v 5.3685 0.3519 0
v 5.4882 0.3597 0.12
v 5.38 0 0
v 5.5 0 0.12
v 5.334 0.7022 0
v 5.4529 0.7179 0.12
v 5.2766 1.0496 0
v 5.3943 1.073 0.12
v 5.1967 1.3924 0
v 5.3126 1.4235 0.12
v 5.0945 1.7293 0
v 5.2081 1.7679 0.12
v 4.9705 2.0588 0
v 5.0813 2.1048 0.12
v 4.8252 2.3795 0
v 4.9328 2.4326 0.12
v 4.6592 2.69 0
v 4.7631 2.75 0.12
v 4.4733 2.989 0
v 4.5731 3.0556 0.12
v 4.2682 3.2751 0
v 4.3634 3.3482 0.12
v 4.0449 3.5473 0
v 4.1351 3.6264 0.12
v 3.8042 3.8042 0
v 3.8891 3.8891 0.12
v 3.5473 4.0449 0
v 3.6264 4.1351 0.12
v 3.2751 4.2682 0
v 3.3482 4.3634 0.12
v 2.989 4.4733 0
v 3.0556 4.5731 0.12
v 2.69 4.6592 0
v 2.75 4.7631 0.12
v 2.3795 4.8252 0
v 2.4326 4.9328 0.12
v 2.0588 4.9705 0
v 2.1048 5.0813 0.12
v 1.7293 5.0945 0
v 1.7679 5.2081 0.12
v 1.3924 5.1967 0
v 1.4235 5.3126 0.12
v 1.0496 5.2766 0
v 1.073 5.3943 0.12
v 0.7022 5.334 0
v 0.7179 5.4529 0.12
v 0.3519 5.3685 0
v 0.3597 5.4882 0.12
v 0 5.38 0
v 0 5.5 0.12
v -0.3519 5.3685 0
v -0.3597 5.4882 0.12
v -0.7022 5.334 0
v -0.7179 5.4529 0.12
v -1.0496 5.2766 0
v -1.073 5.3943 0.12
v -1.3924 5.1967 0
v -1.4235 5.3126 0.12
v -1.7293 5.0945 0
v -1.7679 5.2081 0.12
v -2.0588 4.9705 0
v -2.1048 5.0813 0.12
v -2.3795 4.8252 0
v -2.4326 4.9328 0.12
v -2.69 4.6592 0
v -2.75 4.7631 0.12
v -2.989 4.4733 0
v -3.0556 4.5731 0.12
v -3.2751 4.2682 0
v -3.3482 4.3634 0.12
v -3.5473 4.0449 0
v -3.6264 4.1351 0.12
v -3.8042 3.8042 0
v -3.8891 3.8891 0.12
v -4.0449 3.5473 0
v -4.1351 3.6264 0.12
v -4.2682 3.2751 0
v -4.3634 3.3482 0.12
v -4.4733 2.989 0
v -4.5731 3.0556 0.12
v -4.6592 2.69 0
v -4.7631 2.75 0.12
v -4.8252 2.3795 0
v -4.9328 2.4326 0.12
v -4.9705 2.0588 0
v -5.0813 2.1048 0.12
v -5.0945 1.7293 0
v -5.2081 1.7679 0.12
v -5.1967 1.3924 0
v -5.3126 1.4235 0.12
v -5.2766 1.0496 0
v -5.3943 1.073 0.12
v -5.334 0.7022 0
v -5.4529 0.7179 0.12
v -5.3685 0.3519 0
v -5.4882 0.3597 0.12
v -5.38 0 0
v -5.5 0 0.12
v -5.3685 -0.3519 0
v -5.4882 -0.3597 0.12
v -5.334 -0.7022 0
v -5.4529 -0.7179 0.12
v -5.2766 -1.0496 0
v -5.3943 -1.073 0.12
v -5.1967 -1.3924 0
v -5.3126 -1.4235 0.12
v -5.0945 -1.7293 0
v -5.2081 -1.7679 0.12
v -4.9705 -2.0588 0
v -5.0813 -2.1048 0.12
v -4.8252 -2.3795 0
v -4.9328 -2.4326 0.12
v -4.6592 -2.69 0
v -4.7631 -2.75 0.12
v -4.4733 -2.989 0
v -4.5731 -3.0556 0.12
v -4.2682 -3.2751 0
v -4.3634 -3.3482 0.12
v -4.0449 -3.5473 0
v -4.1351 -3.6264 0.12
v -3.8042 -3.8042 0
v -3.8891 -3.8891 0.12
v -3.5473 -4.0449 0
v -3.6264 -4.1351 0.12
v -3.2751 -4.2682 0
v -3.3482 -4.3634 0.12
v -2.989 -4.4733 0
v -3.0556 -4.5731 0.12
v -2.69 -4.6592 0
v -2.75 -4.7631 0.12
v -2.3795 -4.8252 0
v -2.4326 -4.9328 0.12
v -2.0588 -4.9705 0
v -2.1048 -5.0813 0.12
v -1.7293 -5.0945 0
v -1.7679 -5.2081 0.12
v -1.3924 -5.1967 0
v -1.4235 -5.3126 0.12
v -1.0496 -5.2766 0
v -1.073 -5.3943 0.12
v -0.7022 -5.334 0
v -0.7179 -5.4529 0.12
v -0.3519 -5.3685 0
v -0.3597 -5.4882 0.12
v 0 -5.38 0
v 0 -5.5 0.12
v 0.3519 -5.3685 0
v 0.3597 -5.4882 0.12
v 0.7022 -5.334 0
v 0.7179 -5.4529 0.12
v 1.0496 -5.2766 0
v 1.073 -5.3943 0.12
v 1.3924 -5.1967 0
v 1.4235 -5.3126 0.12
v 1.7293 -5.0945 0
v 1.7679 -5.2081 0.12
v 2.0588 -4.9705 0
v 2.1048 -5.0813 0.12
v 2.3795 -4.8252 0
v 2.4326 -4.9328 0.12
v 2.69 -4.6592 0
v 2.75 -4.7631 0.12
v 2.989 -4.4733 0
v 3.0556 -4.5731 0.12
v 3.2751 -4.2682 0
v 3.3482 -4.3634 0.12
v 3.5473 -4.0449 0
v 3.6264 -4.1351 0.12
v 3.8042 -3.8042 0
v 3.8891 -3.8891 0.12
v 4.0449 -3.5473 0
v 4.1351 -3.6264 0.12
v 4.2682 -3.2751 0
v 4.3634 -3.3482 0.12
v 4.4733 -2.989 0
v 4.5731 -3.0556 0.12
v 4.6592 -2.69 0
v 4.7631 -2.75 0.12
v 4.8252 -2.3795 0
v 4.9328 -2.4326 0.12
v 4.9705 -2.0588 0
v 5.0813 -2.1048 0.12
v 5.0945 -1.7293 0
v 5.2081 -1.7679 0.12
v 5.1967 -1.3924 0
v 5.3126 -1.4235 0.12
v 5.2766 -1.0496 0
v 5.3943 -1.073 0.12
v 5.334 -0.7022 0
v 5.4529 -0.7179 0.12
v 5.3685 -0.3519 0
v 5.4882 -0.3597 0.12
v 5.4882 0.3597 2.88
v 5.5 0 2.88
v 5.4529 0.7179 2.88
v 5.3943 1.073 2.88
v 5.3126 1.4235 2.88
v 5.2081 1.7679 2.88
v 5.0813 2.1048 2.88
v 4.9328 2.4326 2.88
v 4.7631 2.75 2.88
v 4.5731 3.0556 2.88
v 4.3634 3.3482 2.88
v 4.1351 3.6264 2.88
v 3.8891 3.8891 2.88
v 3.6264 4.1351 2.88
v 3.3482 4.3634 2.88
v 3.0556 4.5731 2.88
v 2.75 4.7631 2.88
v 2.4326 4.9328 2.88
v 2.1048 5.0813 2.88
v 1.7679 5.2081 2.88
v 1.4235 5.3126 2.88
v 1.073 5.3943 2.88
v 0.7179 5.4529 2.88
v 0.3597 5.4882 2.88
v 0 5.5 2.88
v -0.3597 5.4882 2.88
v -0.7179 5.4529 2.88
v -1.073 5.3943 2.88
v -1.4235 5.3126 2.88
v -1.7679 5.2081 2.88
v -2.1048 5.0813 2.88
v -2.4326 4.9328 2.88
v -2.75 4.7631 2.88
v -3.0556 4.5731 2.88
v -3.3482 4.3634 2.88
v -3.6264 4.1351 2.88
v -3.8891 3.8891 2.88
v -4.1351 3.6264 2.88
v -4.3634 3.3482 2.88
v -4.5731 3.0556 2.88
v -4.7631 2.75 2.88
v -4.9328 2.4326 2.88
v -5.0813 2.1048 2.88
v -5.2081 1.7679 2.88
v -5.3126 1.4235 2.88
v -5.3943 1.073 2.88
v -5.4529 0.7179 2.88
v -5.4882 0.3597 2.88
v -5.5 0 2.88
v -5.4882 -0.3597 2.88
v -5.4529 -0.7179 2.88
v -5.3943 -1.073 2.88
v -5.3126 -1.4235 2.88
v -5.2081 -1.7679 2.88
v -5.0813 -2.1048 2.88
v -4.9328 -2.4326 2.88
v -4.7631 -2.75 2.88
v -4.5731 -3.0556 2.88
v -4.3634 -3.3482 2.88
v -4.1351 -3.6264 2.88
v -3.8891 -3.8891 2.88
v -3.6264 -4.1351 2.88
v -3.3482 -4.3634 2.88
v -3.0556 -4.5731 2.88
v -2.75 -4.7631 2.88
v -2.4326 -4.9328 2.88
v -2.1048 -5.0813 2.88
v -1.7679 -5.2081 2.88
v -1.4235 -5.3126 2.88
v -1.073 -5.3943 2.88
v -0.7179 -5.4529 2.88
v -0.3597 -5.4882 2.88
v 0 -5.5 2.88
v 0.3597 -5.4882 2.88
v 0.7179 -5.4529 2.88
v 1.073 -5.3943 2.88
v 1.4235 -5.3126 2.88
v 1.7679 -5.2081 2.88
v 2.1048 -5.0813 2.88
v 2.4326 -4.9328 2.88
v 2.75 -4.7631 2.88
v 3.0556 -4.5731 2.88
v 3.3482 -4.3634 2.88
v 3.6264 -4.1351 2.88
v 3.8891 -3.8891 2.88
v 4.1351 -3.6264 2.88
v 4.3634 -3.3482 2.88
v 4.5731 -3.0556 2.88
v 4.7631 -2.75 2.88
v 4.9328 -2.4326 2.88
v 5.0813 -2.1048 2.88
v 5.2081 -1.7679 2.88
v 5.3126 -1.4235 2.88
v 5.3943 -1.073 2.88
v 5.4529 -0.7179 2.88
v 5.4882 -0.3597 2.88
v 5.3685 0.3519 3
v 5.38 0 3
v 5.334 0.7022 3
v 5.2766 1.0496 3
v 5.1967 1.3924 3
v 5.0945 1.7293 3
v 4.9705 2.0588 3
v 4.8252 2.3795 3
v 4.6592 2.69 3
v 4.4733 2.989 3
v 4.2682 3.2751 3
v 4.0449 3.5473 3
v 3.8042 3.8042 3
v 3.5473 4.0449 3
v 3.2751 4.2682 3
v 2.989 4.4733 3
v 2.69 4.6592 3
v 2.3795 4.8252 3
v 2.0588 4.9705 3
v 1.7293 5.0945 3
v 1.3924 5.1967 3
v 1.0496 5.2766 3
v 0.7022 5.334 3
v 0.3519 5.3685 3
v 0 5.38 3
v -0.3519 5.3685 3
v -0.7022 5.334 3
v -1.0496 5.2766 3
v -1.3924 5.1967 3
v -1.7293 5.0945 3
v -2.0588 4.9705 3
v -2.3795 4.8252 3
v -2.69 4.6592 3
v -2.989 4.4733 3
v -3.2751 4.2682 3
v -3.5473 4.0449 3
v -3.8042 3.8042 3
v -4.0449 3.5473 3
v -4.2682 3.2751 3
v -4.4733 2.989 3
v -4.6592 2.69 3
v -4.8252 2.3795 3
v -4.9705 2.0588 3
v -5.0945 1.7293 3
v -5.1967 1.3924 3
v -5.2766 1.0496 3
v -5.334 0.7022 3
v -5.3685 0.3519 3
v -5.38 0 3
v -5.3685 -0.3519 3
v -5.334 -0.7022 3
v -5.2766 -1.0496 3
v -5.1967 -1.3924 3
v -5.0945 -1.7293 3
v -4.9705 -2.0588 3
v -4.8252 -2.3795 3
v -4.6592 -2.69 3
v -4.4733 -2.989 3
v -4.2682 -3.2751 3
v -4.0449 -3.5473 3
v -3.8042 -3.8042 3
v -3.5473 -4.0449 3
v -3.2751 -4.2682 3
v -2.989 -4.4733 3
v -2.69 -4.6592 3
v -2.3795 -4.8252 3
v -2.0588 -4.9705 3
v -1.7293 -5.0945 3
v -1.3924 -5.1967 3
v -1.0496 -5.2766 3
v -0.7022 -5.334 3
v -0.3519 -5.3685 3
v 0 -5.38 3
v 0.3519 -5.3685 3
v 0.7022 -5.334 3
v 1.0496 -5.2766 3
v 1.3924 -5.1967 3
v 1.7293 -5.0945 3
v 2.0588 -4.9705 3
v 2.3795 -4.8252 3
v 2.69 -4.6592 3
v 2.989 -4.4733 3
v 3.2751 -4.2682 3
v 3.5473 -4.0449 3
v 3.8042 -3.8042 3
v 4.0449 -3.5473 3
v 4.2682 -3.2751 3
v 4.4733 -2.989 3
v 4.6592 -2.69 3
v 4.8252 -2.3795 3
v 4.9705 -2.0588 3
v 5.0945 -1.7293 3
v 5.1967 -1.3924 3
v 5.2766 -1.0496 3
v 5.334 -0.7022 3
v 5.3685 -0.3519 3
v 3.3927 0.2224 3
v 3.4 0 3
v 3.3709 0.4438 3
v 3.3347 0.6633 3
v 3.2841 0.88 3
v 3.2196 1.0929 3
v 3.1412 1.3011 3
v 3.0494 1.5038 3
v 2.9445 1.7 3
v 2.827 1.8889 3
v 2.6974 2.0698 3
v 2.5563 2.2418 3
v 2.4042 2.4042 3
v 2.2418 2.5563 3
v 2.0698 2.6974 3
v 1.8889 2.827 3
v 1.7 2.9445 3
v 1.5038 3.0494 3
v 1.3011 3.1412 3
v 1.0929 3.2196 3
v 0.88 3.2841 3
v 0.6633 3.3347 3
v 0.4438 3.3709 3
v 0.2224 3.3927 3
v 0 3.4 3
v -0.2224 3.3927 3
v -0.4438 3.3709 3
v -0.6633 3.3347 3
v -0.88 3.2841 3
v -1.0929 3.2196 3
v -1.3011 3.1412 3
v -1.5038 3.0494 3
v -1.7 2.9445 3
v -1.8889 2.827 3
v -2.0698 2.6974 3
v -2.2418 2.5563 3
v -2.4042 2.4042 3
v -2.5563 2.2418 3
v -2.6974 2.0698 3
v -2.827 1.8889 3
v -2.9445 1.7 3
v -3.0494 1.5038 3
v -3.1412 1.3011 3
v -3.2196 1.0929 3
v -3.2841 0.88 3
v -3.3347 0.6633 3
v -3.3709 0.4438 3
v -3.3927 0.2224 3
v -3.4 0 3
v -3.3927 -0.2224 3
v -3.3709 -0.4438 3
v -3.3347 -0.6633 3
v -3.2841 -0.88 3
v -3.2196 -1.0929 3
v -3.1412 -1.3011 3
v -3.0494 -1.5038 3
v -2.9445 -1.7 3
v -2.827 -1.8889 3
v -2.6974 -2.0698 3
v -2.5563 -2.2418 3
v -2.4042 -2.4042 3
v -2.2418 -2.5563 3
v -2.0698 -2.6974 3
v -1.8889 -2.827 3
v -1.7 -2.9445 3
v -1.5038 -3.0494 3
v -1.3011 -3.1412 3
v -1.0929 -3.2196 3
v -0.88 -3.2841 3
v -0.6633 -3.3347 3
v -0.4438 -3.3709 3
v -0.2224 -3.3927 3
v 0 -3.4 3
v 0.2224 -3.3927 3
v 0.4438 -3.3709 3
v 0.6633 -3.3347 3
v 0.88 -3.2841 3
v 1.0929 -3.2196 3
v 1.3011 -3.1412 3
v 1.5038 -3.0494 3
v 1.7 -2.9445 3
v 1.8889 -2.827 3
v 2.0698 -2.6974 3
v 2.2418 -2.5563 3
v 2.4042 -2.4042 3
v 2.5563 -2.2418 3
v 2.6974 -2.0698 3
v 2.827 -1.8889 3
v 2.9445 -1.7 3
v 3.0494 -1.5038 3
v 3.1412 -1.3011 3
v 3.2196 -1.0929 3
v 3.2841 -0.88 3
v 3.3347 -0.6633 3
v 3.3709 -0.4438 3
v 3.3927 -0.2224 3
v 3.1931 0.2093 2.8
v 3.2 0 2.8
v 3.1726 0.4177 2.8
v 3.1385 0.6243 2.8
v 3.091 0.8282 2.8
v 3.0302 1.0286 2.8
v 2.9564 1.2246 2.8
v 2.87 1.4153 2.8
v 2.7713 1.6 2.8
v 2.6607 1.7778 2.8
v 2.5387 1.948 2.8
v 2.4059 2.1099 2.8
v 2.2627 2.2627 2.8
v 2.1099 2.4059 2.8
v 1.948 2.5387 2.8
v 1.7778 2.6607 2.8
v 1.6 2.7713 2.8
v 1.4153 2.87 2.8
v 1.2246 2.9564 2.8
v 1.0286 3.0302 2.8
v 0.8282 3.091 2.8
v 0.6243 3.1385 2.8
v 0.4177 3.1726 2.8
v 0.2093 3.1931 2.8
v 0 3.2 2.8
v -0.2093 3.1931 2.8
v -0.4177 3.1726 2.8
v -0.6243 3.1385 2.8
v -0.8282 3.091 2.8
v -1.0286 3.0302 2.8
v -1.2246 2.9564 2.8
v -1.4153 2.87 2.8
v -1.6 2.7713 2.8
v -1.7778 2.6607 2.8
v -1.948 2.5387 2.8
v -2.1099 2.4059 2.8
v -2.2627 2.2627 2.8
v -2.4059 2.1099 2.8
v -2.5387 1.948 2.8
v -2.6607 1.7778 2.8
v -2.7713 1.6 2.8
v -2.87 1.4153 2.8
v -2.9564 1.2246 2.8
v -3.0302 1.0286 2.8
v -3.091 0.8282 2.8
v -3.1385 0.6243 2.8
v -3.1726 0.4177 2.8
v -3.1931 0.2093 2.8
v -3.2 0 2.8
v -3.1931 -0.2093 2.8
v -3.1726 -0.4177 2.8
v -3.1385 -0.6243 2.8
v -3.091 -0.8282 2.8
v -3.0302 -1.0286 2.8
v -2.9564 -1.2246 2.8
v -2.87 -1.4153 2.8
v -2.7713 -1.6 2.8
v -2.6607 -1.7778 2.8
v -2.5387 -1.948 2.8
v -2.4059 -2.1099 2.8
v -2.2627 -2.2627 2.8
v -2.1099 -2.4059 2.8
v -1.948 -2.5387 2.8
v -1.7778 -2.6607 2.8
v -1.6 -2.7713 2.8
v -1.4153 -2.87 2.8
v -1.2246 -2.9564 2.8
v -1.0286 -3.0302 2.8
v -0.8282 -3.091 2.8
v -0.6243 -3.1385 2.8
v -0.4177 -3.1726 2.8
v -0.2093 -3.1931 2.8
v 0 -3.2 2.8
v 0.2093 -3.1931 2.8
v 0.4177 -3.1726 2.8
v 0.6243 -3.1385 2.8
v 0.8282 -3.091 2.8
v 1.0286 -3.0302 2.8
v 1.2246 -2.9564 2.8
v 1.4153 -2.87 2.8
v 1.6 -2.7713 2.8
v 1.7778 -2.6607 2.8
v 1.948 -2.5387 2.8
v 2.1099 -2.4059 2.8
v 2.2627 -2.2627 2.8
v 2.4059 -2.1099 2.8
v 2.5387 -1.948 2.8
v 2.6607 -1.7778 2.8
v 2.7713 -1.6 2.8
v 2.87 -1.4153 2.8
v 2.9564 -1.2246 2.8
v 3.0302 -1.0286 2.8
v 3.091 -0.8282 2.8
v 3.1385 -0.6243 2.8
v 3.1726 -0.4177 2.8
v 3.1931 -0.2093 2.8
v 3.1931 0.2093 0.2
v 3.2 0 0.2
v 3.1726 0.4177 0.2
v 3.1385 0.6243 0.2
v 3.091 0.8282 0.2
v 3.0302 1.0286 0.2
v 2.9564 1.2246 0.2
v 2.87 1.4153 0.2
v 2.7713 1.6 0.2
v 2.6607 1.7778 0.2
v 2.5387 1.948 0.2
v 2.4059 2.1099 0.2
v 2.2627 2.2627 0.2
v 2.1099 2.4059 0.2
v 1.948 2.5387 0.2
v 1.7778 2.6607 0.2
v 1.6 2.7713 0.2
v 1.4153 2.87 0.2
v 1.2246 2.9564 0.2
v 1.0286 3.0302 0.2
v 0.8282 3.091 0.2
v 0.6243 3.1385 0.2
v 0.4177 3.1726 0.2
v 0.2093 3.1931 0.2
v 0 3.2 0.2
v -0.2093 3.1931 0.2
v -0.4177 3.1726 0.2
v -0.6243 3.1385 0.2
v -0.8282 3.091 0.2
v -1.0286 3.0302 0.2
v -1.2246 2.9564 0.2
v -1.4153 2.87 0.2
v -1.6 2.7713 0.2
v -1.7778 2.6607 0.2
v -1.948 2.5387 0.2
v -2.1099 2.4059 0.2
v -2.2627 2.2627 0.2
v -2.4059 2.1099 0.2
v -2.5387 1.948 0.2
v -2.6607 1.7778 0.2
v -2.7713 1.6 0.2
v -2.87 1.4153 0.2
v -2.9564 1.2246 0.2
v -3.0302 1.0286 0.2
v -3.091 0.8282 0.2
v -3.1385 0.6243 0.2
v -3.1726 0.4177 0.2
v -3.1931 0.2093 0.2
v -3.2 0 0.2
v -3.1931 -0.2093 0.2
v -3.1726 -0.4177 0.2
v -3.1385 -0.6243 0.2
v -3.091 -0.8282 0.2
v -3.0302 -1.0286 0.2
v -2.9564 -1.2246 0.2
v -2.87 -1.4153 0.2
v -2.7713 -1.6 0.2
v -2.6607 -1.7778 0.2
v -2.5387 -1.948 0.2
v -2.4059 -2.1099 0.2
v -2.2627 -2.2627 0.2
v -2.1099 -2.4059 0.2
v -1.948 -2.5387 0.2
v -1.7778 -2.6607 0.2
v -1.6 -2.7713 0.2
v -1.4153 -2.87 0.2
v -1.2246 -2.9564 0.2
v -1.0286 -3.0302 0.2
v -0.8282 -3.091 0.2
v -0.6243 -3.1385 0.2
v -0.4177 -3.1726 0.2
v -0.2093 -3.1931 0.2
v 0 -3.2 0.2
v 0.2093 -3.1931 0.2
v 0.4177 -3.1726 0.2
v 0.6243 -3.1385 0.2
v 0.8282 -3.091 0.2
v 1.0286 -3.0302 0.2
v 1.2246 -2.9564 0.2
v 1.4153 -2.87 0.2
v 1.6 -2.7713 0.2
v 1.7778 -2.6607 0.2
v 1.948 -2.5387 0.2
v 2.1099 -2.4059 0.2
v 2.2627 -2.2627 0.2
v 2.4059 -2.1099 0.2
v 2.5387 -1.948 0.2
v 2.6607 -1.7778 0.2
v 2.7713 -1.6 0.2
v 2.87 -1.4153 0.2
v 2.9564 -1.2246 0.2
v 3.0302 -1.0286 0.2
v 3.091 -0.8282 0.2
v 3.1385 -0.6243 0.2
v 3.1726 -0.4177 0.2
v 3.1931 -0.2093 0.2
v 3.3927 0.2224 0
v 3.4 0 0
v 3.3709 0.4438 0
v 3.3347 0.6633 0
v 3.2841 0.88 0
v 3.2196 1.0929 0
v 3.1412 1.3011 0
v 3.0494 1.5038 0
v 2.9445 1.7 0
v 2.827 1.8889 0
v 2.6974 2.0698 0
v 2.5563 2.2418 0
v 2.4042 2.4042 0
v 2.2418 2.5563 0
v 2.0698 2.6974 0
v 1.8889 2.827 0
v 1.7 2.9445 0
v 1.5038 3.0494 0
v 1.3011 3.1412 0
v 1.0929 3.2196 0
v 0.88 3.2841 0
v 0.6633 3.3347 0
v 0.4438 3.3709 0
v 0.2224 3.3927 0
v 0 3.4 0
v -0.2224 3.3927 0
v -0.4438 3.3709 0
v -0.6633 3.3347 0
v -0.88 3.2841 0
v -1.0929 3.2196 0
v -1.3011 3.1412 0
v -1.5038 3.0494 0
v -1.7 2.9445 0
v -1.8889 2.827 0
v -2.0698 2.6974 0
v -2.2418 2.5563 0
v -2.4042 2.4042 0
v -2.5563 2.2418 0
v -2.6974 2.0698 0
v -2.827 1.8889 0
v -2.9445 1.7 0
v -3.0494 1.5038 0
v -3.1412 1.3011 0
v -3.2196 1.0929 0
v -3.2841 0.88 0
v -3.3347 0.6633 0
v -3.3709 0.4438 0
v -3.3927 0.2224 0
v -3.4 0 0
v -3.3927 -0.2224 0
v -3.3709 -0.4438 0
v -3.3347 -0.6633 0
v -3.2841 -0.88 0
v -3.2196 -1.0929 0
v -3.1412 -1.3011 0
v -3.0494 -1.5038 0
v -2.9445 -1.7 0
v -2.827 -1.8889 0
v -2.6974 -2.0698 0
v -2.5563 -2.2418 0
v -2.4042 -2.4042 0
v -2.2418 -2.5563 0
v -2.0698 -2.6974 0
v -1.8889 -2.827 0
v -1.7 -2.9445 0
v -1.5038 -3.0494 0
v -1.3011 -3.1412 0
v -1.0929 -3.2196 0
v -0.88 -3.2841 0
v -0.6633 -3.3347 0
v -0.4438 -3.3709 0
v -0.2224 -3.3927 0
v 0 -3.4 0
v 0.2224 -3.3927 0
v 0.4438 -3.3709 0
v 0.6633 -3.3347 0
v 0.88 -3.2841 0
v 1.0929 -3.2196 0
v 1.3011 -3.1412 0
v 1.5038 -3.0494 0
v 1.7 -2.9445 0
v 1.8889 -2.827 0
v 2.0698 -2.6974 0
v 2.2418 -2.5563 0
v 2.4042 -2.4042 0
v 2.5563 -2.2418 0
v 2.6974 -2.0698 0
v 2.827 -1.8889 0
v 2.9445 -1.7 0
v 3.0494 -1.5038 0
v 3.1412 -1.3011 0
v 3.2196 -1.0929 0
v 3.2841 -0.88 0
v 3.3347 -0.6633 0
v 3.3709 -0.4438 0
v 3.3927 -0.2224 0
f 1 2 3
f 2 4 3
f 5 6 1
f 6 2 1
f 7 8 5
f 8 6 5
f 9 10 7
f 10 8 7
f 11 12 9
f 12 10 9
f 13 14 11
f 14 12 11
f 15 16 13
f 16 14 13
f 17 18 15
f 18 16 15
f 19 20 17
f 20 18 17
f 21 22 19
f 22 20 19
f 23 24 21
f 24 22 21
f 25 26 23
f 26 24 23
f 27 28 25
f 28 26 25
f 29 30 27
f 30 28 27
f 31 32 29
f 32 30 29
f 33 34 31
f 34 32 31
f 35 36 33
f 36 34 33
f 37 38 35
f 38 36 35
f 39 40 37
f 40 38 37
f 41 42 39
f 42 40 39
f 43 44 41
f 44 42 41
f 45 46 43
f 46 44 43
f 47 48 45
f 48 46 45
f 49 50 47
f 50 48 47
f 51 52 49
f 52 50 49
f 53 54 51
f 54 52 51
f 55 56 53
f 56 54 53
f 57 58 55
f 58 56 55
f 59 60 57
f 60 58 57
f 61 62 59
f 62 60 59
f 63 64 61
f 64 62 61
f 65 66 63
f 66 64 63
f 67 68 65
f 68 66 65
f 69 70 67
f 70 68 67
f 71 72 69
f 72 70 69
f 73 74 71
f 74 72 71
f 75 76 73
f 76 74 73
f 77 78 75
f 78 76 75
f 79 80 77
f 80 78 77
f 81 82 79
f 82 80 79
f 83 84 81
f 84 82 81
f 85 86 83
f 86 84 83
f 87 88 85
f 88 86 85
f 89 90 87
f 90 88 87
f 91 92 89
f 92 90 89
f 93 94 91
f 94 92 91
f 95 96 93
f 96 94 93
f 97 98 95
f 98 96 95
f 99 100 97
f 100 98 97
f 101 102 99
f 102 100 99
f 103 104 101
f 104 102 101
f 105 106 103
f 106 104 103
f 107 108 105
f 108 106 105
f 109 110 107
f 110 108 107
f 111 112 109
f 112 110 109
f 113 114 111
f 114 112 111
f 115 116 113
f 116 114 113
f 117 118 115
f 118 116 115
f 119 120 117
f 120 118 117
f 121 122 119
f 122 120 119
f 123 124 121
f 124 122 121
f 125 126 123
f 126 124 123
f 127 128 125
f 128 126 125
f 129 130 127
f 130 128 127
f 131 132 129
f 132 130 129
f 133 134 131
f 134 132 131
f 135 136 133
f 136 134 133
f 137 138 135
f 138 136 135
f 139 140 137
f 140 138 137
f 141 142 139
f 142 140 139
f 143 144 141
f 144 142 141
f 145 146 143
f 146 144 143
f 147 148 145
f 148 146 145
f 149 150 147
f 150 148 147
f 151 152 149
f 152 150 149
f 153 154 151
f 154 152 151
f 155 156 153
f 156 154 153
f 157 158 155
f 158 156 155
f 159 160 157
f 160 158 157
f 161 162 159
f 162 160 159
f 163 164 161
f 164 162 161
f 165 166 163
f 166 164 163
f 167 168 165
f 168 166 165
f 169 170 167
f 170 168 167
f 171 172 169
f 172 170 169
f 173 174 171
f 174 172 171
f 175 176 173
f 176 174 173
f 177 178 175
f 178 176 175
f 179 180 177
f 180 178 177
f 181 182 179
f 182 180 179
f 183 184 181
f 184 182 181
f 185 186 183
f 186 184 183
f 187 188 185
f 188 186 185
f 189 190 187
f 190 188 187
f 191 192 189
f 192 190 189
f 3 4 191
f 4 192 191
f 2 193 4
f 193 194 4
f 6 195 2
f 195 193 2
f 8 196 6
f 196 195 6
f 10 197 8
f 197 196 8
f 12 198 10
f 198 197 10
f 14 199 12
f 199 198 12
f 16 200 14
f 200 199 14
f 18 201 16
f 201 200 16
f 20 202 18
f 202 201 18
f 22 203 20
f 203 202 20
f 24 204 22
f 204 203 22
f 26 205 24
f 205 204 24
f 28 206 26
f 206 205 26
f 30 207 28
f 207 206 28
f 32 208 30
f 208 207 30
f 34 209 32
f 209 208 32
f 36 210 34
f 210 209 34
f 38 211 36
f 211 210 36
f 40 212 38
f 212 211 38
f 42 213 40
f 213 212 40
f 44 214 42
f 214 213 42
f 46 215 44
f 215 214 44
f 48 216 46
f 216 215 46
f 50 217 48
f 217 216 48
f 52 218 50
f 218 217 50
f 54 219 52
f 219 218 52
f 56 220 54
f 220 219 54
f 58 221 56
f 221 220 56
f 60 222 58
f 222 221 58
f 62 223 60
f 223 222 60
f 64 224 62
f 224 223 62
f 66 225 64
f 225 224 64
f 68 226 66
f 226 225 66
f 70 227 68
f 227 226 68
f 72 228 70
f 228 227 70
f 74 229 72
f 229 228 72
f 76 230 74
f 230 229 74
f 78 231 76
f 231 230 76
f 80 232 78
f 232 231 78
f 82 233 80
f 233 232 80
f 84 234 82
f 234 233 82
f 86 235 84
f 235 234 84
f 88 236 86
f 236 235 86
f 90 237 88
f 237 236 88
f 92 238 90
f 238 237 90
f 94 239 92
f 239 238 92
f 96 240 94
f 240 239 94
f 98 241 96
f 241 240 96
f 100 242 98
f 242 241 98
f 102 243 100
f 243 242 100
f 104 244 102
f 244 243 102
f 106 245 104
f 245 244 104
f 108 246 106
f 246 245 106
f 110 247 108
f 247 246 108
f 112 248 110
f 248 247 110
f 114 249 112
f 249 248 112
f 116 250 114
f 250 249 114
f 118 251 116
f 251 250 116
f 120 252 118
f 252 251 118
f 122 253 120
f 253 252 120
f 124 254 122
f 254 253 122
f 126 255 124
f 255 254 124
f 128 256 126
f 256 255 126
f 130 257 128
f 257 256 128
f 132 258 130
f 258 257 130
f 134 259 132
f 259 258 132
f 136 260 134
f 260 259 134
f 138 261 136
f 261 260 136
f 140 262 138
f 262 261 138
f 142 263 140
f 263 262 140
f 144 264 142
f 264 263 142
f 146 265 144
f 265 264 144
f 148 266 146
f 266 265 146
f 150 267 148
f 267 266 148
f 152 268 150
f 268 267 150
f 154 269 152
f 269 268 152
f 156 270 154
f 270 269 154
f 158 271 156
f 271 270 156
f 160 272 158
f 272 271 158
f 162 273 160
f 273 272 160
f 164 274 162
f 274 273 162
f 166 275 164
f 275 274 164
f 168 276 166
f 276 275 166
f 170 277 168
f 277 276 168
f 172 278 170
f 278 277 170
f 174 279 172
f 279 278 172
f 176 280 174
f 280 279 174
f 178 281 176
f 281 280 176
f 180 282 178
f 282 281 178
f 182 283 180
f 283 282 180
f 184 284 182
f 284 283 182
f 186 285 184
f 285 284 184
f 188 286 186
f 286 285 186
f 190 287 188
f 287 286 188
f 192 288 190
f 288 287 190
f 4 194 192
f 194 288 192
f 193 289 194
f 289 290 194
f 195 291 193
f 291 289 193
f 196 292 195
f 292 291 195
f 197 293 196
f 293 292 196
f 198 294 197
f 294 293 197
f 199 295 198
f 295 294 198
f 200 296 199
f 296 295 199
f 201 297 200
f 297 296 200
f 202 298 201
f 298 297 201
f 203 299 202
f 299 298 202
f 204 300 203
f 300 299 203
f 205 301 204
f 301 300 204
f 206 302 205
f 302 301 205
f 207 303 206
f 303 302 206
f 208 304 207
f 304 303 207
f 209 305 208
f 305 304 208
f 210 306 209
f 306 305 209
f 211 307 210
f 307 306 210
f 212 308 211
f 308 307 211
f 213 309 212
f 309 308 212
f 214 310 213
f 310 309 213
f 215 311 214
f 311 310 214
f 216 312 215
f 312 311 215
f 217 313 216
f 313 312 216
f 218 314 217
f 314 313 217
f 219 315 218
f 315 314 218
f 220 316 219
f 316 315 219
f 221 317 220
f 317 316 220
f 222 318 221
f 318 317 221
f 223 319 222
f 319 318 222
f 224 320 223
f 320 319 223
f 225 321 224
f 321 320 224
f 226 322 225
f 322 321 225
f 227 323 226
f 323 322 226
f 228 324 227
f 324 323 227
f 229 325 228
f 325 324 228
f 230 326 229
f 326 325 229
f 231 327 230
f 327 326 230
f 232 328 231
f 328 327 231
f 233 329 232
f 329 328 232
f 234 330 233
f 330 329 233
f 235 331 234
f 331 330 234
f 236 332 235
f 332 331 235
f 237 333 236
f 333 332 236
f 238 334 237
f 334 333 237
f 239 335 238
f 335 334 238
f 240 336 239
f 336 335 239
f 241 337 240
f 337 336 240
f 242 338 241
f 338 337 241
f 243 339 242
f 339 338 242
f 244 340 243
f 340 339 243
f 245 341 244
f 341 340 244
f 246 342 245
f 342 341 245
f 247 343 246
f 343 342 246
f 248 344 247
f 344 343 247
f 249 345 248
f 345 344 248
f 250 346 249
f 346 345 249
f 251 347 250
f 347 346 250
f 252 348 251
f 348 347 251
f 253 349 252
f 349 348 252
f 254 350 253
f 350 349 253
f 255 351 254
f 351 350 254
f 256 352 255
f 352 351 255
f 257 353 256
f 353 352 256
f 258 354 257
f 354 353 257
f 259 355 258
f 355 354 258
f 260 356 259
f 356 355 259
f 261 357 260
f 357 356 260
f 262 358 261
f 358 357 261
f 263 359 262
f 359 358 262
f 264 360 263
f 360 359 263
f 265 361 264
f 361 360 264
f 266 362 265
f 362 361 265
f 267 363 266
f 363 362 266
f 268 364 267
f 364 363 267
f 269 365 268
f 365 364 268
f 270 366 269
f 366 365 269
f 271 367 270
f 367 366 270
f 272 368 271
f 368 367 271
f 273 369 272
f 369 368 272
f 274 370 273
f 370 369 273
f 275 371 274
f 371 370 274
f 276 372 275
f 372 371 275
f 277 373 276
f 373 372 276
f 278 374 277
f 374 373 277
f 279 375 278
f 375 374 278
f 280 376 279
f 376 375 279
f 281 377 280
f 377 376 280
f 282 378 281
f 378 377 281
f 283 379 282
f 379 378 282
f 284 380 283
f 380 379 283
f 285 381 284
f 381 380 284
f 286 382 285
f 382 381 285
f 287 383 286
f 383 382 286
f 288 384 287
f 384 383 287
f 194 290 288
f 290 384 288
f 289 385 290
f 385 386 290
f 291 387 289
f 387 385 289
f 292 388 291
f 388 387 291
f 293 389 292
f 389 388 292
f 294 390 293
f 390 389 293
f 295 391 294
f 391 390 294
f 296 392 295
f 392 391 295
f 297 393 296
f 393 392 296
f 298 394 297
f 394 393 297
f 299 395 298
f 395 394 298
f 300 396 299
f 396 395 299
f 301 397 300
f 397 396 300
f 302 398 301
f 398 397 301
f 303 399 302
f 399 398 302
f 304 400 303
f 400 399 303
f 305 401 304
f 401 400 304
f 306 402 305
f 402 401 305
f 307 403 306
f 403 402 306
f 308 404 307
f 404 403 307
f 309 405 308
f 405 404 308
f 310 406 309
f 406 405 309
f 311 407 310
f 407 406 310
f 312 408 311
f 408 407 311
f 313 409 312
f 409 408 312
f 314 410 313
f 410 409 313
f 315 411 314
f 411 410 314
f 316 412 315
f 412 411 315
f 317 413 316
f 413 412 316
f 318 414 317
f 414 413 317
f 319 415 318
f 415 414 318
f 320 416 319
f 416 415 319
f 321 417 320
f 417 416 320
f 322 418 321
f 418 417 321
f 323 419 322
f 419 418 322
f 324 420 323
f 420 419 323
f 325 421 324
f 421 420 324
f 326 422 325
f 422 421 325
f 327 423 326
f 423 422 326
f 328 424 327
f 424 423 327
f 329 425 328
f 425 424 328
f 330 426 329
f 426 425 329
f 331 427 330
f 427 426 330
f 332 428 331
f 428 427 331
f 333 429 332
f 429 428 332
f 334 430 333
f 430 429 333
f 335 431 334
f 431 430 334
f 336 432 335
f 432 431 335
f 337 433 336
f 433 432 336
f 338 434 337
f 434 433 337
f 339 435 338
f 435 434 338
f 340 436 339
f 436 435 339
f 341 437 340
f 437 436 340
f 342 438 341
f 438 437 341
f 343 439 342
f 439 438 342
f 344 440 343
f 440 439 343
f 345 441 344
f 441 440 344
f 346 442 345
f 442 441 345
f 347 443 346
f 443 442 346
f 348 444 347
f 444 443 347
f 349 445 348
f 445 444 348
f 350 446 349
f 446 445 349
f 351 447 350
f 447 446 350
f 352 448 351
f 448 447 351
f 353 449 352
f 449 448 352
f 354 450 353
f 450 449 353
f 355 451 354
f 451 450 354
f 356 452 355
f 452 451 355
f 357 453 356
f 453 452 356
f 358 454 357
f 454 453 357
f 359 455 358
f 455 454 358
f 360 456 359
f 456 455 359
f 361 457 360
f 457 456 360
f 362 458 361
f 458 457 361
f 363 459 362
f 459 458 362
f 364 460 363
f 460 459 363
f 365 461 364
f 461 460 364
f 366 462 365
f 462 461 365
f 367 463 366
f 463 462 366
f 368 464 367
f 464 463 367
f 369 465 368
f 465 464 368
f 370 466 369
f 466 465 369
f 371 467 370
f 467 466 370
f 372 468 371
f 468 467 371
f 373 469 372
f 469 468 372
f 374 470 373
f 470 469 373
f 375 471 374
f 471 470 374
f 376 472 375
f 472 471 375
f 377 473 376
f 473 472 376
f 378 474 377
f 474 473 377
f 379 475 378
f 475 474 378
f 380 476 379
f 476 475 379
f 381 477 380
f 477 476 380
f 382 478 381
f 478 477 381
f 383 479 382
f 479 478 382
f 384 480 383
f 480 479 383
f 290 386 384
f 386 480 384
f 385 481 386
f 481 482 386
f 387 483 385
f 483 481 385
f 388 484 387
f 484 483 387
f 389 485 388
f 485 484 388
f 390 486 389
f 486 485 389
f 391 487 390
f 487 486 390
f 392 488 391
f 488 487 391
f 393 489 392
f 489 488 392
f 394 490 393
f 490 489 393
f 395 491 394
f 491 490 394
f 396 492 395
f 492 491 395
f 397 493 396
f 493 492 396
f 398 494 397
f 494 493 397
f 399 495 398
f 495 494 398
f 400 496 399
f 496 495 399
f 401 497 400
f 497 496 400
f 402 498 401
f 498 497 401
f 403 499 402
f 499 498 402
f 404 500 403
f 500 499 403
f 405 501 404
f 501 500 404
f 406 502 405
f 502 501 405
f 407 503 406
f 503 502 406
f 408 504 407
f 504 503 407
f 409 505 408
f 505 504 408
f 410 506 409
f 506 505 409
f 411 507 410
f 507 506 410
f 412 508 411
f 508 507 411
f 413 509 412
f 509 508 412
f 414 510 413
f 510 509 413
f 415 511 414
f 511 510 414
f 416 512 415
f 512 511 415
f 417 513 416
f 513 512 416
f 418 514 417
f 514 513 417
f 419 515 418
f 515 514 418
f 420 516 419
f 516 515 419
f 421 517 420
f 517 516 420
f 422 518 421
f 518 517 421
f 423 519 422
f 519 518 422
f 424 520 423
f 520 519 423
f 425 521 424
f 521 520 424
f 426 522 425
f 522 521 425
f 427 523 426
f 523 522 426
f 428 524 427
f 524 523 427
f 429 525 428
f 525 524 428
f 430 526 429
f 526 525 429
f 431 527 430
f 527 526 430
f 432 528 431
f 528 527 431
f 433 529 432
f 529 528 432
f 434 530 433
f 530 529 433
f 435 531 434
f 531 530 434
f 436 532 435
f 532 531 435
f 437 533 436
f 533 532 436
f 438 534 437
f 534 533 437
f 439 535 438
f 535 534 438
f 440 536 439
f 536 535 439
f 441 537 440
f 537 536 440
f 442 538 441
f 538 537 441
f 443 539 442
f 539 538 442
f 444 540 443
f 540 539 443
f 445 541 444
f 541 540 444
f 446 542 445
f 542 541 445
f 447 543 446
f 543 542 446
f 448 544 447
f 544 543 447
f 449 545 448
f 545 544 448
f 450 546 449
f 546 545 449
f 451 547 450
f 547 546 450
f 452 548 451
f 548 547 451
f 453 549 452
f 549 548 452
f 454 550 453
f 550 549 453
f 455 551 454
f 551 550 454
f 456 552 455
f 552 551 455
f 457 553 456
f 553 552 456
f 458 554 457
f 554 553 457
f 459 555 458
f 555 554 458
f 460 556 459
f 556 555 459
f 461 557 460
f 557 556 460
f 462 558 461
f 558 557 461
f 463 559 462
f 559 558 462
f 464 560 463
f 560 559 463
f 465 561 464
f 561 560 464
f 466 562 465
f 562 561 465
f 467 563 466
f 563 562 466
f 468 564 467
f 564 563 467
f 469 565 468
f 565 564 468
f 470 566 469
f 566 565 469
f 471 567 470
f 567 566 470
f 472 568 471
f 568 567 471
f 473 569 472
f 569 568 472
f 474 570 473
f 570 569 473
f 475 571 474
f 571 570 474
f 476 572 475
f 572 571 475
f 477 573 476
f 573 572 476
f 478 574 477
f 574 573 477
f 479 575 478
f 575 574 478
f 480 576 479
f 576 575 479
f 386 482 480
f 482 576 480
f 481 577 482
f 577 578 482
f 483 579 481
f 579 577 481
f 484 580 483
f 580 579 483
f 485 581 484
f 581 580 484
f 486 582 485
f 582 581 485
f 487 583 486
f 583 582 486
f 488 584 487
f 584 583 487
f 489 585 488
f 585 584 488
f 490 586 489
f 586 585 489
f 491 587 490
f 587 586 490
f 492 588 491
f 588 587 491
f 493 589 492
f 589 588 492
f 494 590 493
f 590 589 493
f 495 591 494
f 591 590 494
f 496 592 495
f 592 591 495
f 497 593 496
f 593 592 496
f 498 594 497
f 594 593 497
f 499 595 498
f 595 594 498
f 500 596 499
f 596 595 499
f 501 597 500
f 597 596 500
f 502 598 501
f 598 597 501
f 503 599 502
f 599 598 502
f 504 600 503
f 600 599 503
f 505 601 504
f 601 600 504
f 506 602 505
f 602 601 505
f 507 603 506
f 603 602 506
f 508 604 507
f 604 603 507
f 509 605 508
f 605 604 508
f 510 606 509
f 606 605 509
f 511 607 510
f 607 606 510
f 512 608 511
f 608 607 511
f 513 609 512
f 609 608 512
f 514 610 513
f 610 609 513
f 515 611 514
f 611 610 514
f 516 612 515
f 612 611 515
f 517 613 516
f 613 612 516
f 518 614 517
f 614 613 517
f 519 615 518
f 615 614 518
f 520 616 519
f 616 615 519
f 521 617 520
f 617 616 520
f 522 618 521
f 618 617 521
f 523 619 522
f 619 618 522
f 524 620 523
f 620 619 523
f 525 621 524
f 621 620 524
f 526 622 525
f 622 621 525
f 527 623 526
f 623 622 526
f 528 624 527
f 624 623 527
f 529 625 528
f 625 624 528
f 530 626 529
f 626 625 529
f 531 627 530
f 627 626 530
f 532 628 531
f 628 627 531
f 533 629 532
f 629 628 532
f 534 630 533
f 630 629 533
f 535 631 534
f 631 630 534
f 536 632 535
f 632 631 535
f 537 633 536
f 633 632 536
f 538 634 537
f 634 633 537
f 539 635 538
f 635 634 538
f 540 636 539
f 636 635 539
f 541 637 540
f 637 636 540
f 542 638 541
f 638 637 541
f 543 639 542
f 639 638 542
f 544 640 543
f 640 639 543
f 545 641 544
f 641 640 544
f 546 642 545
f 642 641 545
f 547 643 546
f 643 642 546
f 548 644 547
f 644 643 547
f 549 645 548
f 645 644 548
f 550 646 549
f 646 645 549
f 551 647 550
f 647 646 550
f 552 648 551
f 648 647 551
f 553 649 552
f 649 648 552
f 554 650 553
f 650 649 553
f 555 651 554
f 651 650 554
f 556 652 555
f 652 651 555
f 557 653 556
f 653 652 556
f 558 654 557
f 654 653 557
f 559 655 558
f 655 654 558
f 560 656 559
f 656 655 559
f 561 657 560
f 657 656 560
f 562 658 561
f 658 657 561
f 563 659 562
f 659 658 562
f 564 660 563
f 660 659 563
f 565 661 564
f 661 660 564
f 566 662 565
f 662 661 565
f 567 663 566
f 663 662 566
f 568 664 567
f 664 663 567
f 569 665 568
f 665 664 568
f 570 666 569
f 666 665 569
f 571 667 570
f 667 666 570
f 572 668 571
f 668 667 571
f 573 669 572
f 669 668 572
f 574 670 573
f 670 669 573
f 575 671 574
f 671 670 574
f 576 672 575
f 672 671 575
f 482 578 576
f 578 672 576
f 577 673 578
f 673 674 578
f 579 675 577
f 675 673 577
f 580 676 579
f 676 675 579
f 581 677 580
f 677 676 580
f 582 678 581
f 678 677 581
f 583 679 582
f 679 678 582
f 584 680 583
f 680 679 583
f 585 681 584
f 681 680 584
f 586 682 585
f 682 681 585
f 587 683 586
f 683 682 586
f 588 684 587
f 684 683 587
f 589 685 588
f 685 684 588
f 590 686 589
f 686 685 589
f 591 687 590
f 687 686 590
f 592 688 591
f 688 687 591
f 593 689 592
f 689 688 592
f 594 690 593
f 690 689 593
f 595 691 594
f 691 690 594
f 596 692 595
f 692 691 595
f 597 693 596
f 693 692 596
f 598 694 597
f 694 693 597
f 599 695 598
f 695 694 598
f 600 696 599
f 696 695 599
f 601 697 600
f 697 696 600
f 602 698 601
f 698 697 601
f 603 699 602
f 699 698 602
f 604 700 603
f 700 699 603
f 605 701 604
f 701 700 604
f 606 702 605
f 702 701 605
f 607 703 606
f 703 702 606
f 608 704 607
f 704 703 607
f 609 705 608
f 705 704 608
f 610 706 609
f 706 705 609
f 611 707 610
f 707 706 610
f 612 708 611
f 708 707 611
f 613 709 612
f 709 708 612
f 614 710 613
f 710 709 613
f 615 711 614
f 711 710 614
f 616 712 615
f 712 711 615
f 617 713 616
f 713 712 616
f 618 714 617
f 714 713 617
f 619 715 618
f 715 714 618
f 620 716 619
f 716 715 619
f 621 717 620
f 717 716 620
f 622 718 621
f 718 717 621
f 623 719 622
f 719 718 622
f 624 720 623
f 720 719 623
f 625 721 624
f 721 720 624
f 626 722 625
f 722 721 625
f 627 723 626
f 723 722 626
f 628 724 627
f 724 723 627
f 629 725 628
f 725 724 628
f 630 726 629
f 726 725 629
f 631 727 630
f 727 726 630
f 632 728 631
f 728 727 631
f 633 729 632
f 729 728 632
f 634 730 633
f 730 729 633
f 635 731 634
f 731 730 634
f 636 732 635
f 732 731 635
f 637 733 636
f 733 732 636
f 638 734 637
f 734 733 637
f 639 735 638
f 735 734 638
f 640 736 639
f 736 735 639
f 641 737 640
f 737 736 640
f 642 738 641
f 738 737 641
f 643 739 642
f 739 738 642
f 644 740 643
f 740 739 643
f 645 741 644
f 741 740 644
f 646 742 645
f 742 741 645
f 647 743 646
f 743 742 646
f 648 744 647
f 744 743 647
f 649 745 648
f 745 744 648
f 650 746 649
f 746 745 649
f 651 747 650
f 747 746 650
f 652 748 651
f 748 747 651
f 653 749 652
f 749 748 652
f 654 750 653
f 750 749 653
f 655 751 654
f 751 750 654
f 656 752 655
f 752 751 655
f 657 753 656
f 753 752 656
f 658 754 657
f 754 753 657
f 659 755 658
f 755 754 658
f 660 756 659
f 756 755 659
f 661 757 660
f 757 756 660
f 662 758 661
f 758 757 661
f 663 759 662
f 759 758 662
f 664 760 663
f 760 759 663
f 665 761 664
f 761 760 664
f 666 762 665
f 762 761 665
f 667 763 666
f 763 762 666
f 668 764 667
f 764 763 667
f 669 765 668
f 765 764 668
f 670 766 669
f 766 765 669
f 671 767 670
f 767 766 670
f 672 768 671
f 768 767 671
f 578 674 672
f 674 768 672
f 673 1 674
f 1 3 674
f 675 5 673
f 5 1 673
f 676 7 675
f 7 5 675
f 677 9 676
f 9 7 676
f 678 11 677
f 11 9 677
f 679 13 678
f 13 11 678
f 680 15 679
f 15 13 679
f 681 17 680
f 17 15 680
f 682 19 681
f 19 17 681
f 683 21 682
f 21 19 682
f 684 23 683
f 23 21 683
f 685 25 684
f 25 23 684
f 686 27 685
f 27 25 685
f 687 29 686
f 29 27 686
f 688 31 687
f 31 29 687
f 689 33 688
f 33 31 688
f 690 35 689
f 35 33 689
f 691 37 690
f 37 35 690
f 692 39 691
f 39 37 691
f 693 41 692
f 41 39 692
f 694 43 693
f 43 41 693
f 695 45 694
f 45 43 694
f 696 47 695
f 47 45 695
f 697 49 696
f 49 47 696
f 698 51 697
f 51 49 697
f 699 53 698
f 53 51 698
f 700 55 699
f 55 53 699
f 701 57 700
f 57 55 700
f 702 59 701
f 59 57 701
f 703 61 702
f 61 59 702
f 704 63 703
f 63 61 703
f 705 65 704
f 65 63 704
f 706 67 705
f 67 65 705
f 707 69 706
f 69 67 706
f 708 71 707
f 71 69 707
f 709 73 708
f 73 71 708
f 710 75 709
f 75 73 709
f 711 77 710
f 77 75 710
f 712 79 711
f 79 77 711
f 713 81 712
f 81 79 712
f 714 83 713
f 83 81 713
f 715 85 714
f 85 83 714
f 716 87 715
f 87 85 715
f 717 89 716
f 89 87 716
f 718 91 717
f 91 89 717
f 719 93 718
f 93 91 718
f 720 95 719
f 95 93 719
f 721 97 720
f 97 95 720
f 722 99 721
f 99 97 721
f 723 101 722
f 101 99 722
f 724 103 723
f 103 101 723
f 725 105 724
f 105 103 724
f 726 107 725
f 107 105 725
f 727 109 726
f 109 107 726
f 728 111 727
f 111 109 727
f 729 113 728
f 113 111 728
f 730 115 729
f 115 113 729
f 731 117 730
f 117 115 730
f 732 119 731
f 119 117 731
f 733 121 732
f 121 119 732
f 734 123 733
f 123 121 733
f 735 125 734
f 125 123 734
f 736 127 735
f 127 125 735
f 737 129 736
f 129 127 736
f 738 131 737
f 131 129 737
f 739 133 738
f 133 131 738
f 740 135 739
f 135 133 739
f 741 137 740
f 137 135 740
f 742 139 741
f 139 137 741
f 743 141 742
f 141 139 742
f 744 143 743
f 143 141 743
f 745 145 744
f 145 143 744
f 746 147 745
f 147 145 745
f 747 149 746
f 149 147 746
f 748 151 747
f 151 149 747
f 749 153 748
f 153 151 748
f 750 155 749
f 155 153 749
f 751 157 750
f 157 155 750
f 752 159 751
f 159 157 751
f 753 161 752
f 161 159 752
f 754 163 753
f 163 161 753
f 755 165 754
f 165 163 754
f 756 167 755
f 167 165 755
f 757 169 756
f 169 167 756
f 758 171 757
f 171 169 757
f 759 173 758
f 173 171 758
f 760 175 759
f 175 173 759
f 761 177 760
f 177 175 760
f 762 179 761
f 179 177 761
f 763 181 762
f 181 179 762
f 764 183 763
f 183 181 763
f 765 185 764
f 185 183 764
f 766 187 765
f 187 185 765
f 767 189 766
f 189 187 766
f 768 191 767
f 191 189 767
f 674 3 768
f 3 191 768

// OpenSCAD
// OOMP generic catalogue model; units: mm.
// Stud length is additional to body depth. Tapping depths are model assumptions.
variant = "full"; // [full, display]
family = "spacer";
connection_type = "plain";
depth_mm = 3;
stud_length_mm = 0;
tapped_depth_mm = 0;
bore_mm = 6.4;
outer_diameter_mm = 11;
across_flats_mm = 6;
thread_nominal_diameter_mm = 3;
thread_pitch_mm = 0.5;
edge_chamfer_mm = 0.12;
mouth_chamfer_mm = 0.2;
angular_segments = 96;
samples_per_pitch = 16;

// Boundary travels up the outside, then down any tapped/plain bore.
// Equal-height rings at shoulders form the annular shoulder faces.
n = angular_segments;
threaded = family == "standoff";
has_stud = connection_type == "stud_to_tapped" || connection_type == "stud_to_stud";
two_studs = connection_type == "stud_to_stud";
through = !threaded || connection_type == "tapped_to_tapped";
pitch = thread_pitch_mm;
diameter = threaded ? thread_nominal_diameter_mm : bore_mm;
minor = diameter - 5*sqrt(3)*pitch/8;
transition = mouth_chamfer_mm + (threaded ? 5*sqrt(3)*pitch/16 : 0);
tip_chamfer = mouth_chamfer_mm + 17*sqrt(3)*pitch/48;
function sorted(v) = len(v)<=1 ? v : let(p=v[0])
    concat(sorted([for(x=v) if(x<p-1e-8) x]), [p], sorted([for(x=v) if(x>p+1e-8) x]));
function reverse(v) = [for(i=[len(v)-1:-1:0]) v[i]];
function theta(i) = i*360/n;
function fract(x) = x-floor(x);
function phase_distance(i,z) = abs(fract(z/pitch-theta(i)/360+0.5)-0.5);
function thread_r(i,z) = minor/2 + min(5*sqrt(3)*pitch/16,
    max(0,(phase_distance(i,z)-0.125)*pitch*sqrt(3)));
function stud_r(i,z,tip) = min(diameter/2 - (variant=="full" ?
    min(17*sqrt(3)*pitch/48,max(0,(phase_distance(i,z)-0.0625)*pitch*sqrt(3))) : 0),
    diameter/2-tip_chamfer+abs(z-tip));
function body_r(i,z) = (threaded ? across_flats_mm/2/cos(theta(i)%60-30) : outer_diameter_mm/2)
    - max(0,edge_chamfer_mm-min(z,depth_mm-z));
function bore_r(i,z) = max(threaded ? (variant=="full" ? thread_r(i,z) : minor/2) : diameter/2,
    diameter/2+mouth_chamfer_mm-(through ? min(z,depth_mm-z) : depth_mm-z));
function stud_z(a,b,tip) = let(count=variant=="full" ? ceil(stud_length_mm/pitch*samples_per_pitch) : 1)
    sorted(concat([for(i=[0:count]) a+(b-a)*i/count], [tip==a ? tip+tip_chamfer : tip-tip_chamfer]));
body_z = sorted([0,edge_chamfer_mm,depth_mm-edge_chamfer_mm,depth_mm]);
low = through ? 0 : depth_mm-tapped_depth_mm;
count = threaded && variant=="full" ? ceil((depth_mm-low)/pitch*samples_per_pitch) : 1;
bore_z = two_studs ? [] : reverse(sorted(concat(
    [for(i=[0:count]) low+(depth_mm-low)*i/count],
    [depth_mm-mouth_chamfer_mm,depth_mm-transition],
    through ? [mouth_chamfer_mm,transition] : [])));
// Ring descriptors: [height, kind, tip]. Kind: 0 body, 1 stud, 2 bore.
rings = concat(
    has_stud ? [for(z=stud_z(-stud_length_mm,0,-stud_length_mm)) [z,1,-stud_length_mm]] : [],
    [for(z=body_z) [z,0,0]],
    two_studs ? [for(z=stud_z(depth_mm,depth_mm+stud_length_mm,depth_mm+stud_length_mm)) [z,1,depth_mm+stud_length_mm]] : [],
    [for(z=bore_z) [z,2,0]]);
function radius(i,ring) = ring[1]==0 ? body_r(i,ring[0]) :
    ring[1]==1 ? stud_r(i,ring[0],ring[2]) : bore_r(i,ring[0]);
points = concat([for(ring=rings) for(i=[0:n-1])
    [radius(i,ring)*cos(theta(i)),radius(i,ring)*sin(theta(i)),ring[0]]],
    through ? [] : [[0,0,rings[0][0]],[0,0,rings[len(rings)-1][0]]]);
center = len(rings)*n;
last = (len(rings)-1)*n;
// OpenSCAD winding is opposite to STL winding.
faces = concat(
    [for(j=[0:len(rings)-(through ? 1 : 2)]) for(i=[0:n-1]) each
        let(a=j*n+i,b=j*n+(i+1)%n,c=((j+1)%len(rings))*n+(i+1)%n,d=((j+1)%len(rings))*n+i)
        [[a,c,b],[a,d,c]]],
    through ? [] : [for(i=[0:n-1]) each let(k=(i+1)%n)
        [[center,i,k],[center+1,last+k,last+i]]]);
assert(family=="spacer" || family=="standoff");
assert(!threaded || connection_type=="tapped_to_tapped" || has_stud);
assert(depth_mm>0 && diameter>0 && pitch>0);
assert(variant=="full" || variant=="display");
assert(n>=24 && n%12==0 && samples_per_pitch>=8);
assert(mouth_chamfer_mm>0 && mouth_chamfer_mm<depth_mm/2);
assert(edge_chamfer_mm>=0 && edge_chamfer_mm<depth_mm/2);
assert(diameter+4*max(mouth_chamfer_mm,edge_chamfer_mm) < (threaded ? across_flats_mm : outer_diameter_mm));
assert(!has_stud || stud_length_mm>2*mouth_chamfer_mm);
assert(!through || !threaded || 2*transition<depth_mm);
assert(connection_type!="stud_to_tapped" || (tapped_depth_mm>transition && tapped_depth_mm<depth_mm));
color([0.86,0.85,0.81]) polyhedron(points=points,faces=faces,convexity=20);
